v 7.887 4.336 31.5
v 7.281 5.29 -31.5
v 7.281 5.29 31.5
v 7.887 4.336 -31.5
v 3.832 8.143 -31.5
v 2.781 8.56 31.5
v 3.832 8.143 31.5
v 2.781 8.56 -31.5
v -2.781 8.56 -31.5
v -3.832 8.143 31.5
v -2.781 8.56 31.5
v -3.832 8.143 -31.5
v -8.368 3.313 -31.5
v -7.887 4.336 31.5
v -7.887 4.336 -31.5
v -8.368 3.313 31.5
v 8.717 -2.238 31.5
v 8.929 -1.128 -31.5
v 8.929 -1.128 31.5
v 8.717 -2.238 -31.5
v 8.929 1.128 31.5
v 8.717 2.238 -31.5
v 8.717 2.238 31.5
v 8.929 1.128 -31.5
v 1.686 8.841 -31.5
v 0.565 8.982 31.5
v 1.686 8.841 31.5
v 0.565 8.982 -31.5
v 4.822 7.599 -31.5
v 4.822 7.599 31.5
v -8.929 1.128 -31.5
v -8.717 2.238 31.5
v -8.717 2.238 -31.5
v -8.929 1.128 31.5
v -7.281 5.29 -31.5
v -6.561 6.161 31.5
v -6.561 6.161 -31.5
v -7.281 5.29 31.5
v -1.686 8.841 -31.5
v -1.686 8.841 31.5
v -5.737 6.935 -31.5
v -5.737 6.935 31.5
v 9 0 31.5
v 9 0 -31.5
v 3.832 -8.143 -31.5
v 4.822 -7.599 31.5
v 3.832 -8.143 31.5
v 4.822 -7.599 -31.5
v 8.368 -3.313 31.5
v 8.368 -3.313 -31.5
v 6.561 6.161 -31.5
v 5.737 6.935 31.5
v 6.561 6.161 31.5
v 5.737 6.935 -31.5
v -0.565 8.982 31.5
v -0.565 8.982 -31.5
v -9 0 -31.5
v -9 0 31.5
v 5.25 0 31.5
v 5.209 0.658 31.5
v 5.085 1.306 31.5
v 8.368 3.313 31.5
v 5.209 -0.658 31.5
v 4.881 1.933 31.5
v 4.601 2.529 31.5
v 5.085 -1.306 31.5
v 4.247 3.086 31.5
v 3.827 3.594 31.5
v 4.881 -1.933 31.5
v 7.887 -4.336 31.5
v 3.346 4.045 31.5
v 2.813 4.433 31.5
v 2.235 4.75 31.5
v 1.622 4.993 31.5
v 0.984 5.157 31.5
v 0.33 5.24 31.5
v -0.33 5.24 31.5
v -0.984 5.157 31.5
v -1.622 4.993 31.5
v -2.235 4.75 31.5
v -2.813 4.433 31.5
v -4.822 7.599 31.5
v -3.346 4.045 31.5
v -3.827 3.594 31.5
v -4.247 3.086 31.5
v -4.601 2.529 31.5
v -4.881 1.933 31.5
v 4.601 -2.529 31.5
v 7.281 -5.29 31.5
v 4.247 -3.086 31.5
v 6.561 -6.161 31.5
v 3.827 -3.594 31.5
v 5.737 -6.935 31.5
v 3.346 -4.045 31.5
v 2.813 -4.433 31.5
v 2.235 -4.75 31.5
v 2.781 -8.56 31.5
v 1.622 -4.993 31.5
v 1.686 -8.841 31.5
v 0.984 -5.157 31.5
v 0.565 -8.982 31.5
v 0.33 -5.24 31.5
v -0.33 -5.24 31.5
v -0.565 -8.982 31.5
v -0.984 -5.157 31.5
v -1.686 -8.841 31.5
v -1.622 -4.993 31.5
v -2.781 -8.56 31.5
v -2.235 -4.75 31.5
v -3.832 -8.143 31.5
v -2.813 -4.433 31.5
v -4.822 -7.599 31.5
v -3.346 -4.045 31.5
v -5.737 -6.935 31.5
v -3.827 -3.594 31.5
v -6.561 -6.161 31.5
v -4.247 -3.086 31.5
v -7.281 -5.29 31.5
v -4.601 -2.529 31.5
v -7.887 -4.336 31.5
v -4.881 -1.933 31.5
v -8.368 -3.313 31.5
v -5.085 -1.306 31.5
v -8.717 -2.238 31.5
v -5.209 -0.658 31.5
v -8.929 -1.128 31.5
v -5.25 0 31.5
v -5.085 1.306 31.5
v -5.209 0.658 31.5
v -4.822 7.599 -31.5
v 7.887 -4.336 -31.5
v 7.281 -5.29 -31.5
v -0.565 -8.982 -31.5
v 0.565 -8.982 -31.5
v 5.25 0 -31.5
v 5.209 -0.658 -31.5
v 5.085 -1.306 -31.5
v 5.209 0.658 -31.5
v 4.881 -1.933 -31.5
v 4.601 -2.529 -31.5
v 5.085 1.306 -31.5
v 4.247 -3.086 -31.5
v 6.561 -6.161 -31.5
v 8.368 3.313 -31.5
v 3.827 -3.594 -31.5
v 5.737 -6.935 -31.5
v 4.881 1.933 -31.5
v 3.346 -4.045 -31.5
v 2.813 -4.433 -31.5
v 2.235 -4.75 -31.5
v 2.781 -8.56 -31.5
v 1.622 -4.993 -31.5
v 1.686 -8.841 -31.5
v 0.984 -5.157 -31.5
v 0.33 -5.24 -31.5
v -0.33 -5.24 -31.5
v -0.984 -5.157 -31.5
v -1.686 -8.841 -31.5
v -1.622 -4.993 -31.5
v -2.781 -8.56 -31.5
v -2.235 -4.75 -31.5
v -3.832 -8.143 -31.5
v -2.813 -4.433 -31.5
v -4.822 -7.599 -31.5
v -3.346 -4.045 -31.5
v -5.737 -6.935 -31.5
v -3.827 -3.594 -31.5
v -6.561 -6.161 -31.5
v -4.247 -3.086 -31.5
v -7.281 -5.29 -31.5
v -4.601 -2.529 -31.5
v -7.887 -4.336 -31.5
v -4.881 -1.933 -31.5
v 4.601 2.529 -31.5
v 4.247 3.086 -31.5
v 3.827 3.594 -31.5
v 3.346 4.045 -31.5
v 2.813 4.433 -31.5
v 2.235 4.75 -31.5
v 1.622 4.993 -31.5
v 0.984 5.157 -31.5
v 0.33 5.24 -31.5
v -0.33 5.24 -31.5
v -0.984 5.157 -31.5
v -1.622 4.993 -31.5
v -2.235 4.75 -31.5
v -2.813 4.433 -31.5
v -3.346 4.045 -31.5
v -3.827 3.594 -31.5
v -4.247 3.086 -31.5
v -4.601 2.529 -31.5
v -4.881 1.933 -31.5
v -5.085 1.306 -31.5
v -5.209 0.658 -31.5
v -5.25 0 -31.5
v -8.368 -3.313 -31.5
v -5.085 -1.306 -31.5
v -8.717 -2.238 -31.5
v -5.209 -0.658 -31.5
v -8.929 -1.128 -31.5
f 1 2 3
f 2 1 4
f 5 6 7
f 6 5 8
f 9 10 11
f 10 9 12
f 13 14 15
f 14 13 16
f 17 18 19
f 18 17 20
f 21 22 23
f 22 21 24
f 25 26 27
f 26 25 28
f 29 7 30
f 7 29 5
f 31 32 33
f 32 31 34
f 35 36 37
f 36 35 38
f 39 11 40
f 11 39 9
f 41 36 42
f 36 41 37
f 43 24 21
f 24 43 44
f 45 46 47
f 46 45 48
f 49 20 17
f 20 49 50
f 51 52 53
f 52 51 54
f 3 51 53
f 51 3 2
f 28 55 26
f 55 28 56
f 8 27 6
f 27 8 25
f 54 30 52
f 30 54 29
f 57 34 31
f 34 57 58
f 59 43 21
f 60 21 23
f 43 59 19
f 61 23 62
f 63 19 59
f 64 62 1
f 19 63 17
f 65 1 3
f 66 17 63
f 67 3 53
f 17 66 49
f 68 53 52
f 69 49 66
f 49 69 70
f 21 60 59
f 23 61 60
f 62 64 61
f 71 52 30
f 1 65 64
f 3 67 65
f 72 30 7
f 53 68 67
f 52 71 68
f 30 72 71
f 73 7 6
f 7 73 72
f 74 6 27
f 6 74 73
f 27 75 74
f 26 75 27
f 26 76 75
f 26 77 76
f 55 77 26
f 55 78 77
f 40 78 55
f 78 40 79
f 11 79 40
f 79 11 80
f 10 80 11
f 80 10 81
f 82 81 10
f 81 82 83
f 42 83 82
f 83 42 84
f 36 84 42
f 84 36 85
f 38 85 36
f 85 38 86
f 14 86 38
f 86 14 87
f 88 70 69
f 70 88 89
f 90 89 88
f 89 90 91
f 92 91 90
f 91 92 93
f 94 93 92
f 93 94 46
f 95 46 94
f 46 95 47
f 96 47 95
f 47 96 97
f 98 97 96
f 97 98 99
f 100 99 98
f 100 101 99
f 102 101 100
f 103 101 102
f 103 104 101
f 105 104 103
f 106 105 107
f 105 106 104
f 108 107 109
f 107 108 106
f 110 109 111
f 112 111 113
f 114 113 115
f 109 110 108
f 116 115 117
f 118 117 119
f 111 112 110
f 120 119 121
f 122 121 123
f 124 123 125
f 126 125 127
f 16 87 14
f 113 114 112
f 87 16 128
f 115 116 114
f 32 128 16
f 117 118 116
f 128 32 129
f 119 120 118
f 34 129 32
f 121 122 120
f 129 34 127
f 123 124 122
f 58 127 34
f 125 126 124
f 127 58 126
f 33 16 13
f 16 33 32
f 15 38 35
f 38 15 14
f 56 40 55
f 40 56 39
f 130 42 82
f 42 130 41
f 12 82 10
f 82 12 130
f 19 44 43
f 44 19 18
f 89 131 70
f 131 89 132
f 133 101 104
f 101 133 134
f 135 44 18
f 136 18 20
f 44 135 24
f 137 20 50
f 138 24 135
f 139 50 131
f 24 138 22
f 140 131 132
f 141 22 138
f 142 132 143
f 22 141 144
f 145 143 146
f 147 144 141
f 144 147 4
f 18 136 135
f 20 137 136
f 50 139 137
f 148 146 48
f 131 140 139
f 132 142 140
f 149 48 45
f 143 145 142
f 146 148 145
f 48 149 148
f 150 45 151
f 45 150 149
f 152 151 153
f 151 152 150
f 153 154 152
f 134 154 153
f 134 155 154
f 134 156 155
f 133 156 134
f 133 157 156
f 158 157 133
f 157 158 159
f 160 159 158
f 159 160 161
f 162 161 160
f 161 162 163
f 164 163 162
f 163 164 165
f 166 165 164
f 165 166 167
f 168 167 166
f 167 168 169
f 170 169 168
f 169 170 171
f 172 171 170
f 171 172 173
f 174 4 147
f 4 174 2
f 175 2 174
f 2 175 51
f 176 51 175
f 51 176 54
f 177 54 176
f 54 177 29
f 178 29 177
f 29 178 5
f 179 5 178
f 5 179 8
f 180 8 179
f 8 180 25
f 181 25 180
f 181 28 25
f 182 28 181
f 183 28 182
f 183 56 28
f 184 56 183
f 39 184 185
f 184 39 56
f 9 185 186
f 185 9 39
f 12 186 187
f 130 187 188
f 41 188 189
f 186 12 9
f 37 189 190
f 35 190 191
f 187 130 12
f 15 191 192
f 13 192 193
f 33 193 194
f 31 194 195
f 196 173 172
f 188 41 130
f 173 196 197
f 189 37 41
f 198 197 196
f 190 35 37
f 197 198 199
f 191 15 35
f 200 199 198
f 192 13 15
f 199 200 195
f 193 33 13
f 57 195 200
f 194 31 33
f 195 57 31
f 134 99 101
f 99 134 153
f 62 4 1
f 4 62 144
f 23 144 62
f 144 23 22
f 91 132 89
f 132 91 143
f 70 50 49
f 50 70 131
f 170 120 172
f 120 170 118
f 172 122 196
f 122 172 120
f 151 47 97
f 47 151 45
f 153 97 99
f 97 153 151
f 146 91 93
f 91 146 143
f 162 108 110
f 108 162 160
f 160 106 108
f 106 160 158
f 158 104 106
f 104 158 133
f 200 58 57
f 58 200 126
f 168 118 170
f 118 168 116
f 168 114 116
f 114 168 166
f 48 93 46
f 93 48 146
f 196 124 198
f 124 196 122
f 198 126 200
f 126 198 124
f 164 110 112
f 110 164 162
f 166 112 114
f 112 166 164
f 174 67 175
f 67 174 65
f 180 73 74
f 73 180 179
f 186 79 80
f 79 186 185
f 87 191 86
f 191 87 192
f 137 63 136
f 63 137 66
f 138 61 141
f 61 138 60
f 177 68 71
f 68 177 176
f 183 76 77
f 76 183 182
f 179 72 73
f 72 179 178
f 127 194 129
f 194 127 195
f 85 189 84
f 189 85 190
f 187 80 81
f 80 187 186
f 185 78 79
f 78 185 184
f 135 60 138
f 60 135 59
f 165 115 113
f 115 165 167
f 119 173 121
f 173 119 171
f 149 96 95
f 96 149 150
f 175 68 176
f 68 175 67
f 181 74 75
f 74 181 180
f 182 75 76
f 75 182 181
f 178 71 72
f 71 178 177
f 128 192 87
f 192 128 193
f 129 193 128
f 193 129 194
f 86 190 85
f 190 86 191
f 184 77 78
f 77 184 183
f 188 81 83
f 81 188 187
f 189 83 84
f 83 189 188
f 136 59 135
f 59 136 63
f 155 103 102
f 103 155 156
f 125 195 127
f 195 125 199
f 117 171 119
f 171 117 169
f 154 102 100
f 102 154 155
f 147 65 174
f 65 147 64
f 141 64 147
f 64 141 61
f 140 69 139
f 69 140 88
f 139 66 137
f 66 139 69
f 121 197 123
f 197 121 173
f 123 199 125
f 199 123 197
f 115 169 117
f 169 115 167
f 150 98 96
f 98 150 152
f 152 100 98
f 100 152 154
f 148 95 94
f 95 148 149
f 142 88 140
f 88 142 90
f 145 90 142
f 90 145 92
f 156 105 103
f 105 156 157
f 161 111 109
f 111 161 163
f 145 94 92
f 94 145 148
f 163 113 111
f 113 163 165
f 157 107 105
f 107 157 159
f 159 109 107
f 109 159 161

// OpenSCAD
$fn = 50;


difference() {
	union() {
		translate(v = [0, 0, -31.5000000000]) {
			cylinder(h = 63, r = 9.0000000000);
		}
	}
	union() {
		translate(v = [0, 0, -100.0000000000]) {
			cylinder(h = 200, r = 5.2500000000);
		}
	}
}
